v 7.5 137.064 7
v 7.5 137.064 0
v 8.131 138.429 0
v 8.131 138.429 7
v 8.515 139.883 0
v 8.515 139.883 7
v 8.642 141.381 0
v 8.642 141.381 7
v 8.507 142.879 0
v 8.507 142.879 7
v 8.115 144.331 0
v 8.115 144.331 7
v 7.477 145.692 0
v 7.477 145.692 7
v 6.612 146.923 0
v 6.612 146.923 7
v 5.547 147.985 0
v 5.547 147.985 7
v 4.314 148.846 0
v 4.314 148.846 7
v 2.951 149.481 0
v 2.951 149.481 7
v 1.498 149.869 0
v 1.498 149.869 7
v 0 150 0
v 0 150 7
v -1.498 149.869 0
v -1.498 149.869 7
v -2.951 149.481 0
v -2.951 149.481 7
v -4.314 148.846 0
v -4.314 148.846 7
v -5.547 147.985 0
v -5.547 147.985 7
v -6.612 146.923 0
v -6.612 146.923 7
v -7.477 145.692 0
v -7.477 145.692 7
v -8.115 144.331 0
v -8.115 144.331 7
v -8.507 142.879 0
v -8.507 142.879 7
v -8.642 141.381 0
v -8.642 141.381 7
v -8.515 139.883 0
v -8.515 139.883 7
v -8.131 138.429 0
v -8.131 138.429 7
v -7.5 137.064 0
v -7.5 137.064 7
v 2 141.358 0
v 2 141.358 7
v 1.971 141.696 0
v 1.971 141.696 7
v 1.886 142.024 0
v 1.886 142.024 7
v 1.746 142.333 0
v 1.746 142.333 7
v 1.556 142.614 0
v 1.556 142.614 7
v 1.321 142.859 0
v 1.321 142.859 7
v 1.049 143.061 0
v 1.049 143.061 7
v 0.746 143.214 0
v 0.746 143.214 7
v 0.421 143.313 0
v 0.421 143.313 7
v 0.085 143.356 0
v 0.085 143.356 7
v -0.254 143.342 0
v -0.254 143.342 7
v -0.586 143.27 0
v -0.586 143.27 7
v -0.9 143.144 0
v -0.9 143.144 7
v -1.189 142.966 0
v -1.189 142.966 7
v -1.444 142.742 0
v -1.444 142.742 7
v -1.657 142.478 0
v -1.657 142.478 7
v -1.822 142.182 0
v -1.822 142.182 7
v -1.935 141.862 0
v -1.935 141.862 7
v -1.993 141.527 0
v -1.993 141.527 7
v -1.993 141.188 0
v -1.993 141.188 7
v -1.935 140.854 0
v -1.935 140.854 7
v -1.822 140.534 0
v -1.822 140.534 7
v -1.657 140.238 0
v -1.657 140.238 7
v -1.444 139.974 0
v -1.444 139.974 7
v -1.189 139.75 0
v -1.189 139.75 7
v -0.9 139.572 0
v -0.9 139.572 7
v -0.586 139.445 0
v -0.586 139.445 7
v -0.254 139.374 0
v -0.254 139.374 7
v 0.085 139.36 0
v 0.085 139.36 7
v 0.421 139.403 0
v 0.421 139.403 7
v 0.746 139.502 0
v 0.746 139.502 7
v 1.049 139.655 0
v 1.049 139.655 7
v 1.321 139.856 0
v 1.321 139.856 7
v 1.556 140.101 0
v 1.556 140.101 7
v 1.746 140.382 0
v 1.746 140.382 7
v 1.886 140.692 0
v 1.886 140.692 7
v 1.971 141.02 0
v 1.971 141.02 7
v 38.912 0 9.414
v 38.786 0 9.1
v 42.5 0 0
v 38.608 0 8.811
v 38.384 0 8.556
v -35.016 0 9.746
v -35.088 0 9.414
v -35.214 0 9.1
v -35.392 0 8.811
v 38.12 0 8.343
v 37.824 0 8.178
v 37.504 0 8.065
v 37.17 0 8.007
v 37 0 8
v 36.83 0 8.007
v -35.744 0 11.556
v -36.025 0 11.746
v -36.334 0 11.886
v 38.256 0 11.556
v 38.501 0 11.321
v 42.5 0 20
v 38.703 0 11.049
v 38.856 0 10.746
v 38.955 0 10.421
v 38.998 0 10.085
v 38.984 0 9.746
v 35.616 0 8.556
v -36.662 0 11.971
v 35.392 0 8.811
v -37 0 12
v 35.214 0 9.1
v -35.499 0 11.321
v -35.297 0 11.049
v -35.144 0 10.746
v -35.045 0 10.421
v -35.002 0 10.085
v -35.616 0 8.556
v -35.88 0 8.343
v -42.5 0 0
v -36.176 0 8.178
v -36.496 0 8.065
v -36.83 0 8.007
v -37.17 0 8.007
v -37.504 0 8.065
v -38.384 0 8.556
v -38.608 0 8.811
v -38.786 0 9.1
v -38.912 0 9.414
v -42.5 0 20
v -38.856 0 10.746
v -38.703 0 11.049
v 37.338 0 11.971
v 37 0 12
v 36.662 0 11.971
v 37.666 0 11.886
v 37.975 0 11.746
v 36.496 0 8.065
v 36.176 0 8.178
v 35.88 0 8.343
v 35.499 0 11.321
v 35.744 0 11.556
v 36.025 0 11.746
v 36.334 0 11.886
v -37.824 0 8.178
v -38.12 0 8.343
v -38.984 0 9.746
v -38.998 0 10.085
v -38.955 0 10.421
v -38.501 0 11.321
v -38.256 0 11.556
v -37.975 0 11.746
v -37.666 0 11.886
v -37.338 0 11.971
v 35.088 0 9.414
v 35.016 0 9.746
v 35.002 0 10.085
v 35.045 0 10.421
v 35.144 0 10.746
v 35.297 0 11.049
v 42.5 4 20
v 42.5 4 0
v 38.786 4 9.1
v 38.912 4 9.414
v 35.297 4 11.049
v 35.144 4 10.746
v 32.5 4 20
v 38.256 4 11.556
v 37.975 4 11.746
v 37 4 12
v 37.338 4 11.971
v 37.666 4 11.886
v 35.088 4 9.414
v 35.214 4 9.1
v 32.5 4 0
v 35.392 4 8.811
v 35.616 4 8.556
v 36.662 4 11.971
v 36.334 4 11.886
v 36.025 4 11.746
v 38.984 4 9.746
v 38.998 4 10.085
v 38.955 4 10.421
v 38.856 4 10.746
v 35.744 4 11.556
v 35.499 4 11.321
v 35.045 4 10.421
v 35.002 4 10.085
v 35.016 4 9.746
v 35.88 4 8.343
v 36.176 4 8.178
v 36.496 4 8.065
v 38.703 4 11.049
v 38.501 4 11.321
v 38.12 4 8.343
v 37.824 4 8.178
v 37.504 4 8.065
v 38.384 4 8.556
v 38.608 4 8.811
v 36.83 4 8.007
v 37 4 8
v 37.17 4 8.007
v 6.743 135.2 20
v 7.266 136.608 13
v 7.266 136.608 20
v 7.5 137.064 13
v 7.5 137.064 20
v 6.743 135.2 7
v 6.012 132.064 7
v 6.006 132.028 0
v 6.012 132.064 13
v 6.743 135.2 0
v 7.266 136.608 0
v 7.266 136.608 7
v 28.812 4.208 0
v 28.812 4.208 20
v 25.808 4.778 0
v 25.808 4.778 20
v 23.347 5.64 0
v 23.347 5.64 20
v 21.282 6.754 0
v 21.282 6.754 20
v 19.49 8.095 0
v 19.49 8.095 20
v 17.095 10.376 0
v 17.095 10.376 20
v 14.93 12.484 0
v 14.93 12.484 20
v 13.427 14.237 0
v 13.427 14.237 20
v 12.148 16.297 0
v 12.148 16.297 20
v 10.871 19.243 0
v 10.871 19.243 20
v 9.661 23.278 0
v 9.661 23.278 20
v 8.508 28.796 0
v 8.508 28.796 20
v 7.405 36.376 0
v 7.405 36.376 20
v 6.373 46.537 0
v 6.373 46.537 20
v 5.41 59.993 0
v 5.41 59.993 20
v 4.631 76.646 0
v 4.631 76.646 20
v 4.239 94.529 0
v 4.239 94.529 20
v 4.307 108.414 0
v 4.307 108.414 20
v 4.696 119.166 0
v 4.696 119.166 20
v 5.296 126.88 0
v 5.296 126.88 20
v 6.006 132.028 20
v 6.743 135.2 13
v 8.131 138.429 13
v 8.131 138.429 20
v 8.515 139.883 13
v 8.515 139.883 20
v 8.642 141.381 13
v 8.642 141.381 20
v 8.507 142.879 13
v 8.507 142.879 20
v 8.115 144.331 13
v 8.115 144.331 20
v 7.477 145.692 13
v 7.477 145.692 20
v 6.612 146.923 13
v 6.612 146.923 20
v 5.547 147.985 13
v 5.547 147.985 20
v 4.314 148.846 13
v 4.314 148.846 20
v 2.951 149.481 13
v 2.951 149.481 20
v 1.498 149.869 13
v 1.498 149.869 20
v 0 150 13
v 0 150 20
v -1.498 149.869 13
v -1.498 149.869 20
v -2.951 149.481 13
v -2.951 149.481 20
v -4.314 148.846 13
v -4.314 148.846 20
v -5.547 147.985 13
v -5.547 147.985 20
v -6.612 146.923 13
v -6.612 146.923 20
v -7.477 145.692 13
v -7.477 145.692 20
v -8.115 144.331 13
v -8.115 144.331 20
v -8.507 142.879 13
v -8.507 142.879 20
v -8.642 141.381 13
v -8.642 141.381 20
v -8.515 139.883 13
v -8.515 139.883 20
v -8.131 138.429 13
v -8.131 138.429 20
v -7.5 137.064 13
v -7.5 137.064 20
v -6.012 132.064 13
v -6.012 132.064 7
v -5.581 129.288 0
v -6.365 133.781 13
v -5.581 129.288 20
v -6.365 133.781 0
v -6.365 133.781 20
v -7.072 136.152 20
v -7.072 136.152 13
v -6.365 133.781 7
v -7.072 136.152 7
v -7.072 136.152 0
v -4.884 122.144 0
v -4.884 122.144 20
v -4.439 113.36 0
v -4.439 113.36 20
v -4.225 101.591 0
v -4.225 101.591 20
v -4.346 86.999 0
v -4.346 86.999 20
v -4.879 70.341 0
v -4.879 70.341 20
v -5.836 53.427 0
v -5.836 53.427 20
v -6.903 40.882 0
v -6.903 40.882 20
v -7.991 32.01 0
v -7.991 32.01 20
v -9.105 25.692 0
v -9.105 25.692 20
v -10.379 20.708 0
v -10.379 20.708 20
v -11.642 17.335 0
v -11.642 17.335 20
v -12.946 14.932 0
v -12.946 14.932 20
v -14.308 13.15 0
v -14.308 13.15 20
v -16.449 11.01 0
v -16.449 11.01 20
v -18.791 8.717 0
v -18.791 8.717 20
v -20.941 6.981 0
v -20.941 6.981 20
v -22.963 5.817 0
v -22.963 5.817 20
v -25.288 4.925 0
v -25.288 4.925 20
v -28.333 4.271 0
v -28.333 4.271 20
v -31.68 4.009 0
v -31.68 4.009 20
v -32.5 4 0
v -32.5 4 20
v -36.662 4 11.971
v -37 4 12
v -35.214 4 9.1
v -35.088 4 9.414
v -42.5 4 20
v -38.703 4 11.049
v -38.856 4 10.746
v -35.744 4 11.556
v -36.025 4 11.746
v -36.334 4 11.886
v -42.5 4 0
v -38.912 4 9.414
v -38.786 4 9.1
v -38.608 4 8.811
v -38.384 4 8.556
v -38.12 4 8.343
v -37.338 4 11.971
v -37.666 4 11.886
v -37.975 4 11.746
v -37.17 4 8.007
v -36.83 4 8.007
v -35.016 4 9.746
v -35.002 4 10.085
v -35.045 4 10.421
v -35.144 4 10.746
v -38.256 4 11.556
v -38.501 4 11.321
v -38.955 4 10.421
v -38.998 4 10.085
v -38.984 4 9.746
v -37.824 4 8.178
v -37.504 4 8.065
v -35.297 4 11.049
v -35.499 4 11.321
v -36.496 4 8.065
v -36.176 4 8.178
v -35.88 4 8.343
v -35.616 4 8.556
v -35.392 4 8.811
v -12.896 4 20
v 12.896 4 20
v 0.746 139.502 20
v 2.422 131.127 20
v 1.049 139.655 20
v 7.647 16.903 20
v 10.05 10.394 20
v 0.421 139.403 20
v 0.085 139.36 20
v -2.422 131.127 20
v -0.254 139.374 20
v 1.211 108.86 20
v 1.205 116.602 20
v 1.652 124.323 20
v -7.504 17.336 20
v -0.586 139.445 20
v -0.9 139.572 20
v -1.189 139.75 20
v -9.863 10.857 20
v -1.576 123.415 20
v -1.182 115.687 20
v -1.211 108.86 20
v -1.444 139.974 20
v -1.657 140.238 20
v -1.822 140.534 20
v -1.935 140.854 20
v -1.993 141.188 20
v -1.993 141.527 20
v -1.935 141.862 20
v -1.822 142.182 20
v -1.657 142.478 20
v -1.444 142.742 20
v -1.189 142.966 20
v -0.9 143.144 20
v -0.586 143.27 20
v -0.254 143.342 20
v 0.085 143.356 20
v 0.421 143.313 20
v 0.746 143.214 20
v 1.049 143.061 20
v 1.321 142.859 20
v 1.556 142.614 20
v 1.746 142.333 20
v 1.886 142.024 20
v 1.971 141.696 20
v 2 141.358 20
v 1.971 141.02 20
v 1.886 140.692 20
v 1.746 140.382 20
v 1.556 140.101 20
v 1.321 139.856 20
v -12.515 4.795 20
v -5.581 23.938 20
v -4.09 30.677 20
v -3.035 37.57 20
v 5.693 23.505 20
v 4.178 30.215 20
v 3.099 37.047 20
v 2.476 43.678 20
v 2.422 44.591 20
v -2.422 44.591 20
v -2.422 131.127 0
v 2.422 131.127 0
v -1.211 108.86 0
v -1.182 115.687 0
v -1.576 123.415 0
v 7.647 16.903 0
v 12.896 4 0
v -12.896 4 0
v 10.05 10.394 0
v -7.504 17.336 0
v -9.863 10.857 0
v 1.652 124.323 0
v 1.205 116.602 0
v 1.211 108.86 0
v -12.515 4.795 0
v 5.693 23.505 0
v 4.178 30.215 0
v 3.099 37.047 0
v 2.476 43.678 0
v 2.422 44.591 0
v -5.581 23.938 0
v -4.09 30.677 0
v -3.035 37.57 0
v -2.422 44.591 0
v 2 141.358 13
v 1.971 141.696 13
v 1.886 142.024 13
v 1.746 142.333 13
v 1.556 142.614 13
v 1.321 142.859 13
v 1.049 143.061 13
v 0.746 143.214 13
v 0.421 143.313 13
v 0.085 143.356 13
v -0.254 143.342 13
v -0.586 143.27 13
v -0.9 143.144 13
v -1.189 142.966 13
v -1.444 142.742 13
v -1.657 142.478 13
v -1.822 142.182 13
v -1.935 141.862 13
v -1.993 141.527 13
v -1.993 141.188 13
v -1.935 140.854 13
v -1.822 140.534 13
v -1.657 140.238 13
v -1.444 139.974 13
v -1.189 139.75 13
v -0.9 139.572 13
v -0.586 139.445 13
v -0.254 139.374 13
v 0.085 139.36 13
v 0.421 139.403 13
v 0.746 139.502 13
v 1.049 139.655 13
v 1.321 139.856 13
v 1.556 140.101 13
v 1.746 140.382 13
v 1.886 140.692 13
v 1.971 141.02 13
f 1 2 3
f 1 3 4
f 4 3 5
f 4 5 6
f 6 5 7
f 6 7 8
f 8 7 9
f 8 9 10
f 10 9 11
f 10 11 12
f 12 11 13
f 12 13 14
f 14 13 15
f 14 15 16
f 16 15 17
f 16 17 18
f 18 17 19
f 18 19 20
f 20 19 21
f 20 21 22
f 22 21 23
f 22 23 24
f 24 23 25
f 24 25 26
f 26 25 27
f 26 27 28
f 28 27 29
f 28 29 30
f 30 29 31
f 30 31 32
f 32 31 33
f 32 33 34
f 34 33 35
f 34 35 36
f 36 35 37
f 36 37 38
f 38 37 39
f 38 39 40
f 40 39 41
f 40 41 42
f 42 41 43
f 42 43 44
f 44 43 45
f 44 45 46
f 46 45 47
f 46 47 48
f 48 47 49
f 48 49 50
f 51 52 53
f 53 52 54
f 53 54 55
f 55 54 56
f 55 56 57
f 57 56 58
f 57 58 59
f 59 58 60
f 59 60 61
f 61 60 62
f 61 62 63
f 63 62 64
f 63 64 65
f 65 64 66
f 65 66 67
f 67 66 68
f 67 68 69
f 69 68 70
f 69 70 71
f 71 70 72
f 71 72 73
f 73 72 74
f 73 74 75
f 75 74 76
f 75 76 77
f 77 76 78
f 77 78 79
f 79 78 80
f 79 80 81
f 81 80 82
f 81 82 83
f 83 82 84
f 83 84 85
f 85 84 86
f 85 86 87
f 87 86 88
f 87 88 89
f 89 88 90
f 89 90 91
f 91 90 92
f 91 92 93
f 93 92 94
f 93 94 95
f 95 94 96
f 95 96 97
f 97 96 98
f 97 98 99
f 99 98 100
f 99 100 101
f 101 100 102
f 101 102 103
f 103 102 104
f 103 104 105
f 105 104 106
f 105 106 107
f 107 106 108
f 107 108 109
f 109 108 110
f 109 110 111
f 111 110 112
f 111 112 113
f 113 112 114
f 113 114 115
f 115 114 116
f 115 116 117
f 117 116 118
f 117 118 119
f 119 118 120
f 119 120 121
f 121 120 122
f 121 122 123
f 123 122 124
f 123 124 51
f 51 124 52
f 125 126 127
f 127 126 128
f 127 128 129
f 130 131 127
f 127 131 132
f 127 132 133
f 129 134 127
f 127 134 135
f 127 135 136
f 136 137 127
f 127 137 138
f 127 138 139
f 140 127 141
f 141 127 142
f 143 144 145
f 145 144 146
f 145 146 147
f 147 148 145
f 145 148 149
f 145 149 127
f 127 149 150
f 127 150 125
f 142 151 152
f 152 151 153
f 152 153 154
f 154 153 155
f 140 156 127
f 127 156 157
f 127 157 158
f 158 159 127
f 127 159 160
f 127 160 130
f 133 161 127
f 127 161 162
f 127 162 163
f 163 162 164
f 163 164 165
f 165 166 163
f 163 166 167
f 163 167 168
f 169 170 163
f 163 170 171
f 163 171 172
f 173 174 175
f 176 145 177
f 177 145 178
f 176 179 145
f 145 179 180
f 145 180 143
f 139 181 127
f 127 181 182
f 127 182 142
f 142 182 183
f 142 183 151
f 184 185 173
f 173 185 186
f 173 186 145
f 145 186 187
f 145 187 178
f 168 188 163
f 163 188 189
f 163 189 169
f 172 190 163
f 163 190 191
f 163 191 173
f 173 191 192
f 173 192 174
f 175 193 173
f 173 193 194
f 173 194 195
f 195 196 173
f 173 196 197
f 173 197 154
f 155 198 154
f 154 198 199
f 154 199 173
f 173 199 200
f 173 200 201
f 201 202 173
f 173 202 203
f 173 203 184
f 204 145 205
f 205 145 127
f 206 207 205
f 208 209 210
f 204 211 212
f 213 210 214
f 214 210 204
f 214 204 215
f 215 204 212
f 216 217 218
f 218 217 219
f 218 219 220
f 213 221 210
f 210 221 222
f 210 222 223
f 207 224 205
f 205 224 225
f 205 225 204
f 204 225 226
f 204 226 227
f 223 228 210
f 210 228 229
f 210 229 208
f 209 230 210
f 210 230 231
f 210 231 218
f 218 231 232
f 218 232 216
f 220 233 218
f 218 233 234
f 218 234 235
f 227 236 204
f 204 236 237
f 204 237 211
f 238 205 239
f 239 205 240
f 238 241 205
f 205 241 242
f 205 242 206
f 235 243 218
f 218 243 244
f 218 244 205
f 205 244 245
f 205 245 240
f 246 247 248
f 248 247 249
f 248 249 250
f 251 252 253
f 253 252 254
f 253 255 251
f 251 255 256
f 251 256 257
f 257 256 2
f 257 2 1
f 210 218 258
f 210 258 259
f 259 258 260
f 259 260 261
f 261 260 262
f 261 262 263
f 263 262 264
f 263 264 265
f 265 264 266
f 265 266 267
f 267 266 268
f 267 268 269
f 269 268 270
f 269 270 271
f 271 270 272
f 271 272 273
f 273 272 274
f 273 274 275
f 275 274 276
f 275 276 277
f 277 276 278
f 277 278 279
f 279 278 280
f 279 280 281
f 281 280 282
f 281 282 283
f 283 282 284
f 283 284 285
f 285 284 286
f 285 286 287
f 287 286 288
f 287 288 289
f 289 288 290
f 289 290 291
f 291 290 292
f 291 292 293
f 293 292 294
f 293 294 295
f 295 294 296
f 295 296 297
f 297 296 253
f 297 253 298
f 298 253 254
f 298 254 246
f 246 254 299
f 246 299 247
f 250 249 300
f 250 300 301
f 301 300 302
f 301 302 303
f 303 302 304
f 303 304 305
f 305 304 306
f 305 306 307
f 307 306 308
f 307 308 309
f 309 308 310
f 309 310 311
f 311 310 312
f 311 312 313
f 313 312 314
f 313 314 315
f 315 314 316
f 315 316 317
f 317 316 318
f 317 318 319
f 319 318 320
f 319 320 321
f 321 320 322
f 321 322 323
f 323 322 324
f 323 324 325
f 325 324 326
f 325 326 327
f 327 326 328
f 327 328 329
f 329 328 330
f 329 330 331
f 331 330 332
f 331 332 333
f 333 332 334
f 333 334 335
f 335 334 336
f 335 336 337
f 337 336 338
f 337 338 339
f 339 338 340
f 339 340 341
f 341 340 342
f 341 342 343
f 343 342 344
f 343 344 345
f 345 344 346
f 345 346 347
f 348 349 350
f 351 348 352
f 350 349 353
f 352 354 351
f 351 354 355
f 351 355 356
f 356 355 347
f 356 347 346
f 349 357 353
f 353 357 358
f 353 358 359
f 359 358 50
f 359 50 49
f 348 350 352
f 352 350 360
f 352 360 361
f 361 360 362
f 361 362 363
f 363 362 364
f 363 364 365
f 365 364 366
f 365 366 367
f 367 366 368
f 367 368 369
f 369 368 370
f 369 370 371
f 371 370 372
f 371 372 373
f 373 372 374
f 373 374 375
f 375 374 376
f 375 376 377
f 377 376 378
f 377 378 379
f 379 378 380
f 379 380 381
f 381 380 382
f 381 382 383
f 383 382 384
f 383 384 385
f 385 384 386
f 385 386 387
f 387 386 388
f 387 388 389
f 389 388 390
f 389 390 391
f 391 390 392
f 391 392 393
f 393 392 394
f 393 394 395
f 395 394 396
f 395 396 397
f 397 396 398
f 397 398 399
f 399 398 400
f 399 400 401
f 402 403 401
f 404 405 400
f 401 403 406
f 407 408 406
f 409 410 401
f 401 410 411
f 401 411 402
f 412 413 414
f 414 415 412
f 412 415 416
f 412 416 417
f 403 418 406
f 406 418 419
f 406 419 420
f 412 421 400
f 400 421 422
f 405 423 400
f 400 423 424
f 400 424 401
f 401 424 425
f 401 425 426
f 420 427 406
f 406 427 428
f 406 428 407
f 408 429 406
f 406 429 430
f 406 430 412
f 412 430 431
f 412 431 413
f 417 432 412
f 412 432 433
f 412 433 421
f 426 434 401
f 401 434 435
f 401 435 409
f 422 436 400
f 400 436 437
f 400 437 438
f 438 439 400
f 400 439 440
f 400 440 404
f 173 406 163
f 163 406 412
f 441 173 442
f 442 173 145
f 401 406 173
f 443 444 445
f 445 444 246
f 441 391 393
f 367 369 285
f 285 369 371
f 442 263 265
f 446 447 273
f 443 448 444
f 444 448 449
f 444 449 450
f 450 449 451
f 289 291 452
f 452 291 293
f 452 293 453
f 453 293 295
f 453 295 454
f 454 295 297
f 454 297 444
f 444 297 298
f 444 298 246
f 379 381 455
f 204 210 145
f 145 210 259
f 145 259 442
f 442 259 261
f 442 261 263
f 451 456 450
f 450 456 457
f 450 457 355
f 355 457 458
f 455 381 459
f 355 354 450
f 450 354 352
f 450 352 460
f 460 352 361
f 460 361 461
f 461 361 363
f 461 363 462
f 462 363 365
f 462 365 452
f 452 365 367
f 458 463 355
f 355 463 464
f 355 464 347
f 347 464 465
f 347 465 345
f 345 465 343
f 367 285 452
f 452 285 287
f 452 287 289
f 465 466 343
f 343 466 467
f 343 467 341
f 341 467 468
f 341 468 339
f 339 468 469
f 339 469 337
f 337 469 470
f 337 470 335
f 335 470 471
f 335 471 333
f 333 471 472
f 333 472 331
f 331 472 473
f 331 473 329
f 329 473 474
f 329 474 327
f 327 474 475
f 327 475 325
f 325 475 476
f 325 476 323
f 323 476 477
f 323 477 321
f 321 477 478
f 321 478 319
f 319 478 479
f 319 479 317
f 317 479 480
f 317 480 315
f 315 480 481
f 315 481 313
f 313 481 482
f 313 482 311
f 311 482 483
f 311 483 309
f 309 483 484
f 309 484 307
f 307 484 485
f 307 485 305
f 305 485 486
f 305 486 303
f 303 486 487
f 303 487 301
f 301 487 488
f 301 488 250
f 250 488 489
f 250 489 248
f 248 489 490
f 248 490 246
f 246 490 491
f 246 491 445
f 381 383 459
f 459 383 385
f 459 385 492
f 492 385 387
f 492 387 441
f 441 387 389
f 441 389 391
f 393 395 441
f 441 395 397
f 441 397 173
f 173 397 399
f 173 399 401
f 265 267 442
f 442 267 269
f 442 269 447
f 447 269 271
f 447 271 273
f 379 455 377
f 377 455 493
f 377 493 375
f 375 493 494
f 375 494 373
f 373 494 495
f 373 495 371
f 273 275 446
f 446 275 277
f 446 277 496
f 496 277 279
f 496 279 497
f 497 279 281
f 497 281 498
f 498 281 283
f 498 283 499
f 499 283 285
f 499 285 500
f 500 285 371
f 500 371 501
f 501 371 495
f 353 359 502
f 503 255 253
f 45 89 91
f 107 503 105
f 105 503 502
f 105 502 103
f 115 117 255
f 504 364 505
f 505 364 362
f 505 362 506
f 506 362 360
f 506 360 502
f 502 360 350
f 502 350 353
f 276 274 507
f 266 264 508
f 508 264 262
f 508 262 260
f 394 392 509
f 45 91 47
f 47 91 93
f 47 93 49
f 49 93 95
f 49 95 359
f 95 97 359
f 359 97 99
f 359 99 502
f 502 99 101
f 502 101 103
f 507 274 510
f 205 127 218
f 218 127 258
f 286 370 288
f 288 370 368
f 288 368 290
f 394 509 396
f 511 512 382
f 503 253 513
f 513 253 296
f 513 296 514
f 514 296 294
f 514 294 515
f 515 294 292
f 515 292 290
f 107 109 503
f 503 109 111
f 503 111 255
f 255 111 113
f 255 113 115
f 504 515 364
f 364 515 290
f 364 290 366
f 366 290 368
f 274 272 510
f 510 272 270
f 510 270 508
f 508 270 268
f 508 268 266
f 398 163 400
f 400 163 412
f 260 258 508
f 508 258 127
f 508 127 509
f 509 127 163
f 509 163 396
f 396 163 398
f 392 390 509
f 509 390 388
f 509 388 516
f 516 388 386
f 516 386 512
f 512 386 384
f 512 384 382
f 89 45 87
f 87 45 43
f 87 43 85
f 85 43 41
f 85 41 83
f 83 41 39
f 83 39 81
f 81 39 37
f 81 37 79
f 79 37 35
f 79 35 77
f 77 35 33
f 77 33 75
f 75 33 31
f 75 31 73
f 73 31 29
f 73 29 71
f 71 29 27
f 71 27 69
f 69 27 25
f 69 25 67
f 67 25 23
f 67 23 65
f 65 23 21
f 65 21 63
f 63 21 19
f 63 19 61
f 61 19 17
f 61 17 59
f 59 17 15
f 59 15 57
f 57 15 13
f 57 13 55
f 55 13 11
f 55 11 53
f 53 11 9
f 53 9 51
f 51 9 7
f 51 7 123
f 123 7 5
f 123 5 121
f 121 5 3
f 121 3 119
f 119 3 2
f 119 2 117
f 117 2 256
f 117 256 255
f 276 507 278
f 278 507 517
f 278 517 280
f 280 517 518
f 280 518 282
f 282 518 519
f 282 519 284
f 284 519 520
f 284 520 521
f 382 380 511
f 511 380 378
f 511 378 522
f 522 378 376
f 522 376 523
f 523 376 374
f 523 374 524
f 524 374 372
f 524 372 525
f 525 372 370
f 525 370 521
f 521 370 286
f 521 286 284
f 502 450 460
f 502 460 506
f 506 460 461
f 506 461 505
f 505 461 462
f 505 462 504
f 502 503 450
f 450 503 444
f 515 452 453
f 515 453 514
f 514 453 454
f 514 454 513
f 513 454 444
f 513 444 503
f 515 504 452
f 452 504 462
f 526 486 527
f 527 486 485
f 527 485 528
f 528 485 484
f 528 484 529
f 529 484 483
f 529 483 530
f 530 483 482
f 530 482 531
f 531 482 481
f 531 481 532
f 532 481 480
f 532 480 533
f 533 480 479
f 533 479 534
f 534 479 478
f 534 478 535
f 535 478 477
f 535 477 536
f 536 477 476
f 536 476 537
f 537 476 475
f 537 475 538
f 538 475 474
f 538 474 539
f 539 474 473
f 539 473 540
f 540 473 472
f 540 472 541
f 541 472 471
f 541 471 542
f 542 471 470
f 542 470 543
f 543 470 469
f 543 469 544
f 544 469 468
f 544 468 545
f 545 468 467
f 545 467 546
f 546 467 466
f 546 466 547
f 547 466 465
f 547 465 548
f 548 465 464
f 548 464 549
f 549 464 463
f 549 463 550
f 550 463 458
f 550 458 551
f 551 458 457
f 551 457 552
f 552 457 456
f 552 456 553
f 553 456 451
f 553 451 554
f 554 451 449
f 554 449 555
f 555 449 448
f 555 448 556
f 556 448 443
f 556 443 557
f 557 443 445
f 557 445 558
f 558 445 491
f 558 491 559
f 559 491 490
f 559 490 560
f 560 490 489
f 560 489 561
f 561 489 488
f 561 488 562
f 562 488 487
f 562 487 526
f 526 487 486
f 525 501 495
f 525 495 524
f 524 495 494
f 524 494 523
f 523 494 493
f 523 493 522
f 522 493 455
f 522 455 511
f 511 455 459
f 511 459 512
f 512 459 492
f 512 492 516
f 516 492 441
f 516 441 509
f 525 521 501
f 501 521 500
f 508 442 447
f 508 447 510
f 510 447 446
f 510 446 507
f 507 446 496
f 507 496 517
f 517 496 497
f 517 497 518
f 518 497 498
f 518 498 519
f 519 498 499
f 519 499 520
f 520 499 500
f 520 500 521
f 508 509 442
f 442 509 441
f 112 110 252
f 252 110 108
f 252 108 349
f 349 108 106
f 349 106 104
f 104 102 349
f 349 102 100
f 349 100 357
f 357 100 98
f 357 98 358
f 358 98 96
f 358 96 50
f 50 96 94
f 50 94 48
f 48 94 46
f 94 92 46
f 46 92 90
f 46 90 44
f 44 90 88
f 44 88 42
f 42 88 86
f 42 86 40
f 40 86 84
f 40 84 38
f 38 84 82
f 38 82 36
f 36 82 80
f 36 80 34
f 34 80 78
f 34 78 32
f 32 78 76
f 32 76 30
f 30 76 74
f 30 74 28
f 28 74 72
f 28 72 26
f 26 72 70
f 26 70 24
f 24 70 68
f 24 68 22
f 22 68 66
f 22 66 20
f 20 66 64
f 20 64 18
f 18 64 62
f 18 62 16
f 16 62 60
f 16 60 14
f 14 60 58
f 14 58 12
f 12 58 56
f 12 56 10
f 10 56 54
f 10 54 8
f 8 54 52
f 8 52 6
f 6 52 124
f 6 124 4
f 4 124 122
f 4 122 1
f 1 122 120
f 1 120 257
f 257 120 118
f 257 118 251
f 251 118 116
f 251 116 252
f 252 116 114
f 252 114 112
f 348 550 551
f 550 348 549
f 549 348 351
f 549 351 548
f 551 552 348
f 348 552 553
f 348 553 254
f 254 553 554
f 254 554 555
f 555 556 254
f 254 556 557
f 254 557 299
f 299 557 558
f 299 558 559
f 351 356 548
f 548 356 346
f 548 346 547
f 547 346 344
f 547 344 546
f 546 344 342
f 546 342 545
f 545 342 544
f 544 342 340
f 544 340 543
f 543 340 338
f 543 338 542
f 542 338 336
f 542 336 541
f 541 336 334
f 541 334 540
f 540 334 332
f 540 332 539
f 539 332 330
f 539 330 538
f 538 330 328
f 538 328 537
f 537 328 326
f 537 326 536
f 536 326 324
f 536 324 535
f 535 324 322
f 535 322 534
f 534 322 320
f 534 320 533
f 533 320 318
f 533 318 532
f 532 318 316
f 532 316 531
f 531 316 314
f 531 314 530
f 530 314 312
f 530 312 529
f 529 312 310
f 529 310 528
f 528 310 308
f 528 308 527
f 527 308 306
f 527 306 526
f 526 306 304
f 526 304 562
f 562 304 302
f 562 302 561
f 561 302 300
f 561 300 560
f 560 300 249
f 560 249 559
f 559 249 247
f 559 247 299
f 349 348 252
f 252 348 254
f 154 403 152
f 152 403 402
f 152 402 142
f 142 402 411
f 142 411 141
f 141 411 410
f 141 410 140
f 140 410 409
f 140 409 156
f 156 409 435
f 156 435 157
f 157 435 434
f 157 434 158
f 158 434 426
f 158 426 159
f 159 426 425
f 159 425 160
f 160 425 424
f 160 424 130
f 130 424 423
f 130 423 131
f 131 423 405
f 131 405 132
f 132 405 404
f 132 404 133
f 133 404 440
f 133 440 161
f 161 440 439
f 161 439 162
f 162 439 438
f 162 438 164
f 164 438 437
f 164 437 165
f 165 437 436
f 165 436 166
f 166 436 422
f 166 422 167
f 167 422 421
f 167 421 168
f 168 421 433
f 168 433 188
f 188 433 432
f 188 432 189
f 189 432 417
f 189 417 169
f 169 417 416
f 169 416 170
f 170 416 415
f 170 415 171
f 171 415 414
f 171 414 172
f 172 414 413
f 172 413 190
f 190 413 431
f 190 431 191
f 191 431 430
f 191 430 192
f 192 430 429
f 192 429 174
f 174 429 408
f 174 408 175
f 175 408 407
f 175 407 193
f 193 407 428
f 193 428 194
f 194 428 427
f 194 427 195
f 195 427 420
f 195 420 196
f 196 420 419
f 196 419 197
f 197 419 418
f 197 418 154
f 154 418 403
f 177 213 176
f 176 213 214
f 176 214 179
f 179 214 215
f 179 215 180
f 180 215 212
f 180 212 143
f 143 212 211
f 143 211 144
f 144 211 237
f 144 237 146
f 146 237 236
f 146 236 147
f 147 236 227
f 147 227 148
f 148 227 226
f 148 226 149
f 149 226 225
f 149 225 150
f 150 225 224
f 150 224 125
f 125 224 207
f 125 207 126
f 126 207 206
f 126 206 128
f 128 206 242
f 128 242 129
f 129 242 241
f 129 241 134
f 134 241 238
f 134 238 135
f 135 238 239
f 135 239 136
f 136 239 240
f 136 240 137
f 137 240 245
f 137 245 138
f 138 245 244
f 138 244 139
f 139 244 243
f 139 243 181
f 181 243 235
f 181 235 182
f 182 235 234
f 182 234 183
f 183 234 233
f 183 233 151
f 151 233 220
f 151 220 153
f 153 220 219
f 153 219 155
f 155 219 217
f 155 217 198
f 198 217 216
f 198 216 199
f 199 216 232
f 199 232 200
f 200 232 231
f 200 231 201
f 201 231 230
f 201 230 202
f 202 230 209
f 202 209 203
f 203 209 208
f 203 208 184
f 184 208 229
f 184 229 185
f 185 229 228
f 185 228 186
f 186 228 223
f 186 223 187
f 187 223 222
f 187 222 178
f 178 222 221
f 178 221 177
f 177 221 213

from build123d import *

# Parameters (mm, degrees)
SALIENTE_EXTRUIR2_DEPTH = 20
CROQUIS3_R              = 2
CORTAR_EXTRUIR1_DEPTH   = 158.182219231
CROQUIS7_W              = 30
CROQUIS7_H              = 6
CORTAR_EXTRUIR4_DEPTH   = 15
CROQUIS8_W              = 17.284402488
CROQUIS8_H              = 6
CORTAR_EXTRUIR5_DEPTH   = 5
CROQUIS6_R              = 2
CORTAR_EXTRUIR3_DEPTH   = 154.369651632


with BuildPart() as part:
    # Croquis1 → Saliente-Extruir2 (new body)
    with BuildSketch(Plane.XY):
        with BuildLine():
            Line((-42.5, 0), (-42.5, 4))
            Line((-42.5, 4), (-32.5, 4))
            add(Edge.make_bspline(
                [(-32.5, 4), (-22.670639358, 4), (-16.226990124, 12.301218675), (-5.122390032, 19.11443447), (-2.364282608, 128.09353499), (-7.5, 137.063891171)],
                knots=[0, 0, 0, 0, 0.22919519, 0.488952723, 0.855764583, 0.855764583, 0.855764583, 0.855764583], degree=3))
            ThreePointArc((-7.5, 137.063891171), (0, 150), (7.5, 137.063891171))
            add(Edge.make_bspline(
                [(32.5, 4), (22.670639358, 4), (16.226990124, 12.301218675), (5.122390032, 19.11443447), (2.364282608, 128.09353499), (7.5, 137.063891171)],
                knots=[0, 0, 0, 0, 0.22919519, 0.488952723, 0.855764583, 0.855764583, 0.855764583, 0.855764583], degree=3))
            Line((32.5, 4), (42.5, 4))
            Line((42.5, 4), (42.5, 0))
            Line((42.5, 0), (-42.5, 0))
        make_face()
    extrude(amount=SALIENTE_EXTRUIR2_DEPTH)

    # Croquis3 → Cortar-Extruir1 (cut, through all)
    with BuildSketch(Plane.XY.offset(20)):
        with Locations((0, 141.357798756)):
            Circle(CROQUIS3_R)
        with BuildLine():
            Line((-2.421642236, 44.591389295), (2.421642236, 44.591389295))
            add(Edge.make_bspline(
                [(12.896150466, 4), (3.6034191, 23.188396535), (2.421642236, 44.591389295)],
                knots=[0, 0, 0, 1, 1, 1], degree=2))
            Line((12.896150466, 4), (-12.896150466, 4))
            add(Edge.make_bspline(
                [(-12.896150466, 4), (-3.6034191, 23.188396535), (-2.421642236, 44.591389295)],
                knots=[0, 0, 0, 1, 1, 1], degree=2))
        make_face()
        with BuildLine():
            Line((-2.421642236, 131.126853852), (2.421642236, 131.126853852))
            add(Edge.make_bspline(
                [(2.421642236, 131.126853852), (0.876872729, 120.033282634), (1.210821118, 108.86049399)],
                knots=[0, 0, 0, 1, 1, 1], degree=2))
            Line((1.210821118, 108.86049399), (-1.210821118, 108.86049399))
            add(Edge.make_bspline(
                [(-2.421642236, 131.126853852), (-0.876872729, 120.033282634), (-1.210821118, 108.86049399)],
                knots=[0, 0, 0, 1, 1, 1], degree=2))
        make_face()
    extrude(amount=-CORTAR_EXTRUIR1_DEPTH, mode=Mode.SUBTRACT)

    # Croquis7 → Cortar-Extruir4 (cut)
    with BuildSketch(Plane(origin=(0, 137.063891171, 0), x_dir=(-1, 0, 0), z_dir=(0, -1, 0))):
        with Locations((0, -10)):
            Rectangle(CROQUIS7_W, CROQUIS7_H)
    extrude(amount=-CORTAR_EXTRUIR4_DEPTH, mode=Mode.SUBTRACT)

    # Croquis8 → Cortar-Extruir5 (cut)
    with BuildSketch(Plane(origin=(0, 137.063891171, 0), x_dir=(1, 0, 0), z_dir=(0, 1, 0))):
        with Locations((0, -10)):
            Rectangle(CROQUIS8_W, CROQUIS8_H)
    extrude(amount=-CORTAR_EXTRUIR5_DEPTH, mode=Mode.SUBTRACT)

    # Croquis6 → Cortar-Extruir3 (cut, through all)
    with BuildSketch(Plane(origin=(0, 4, 0), x_dir=(1, 0, 0), z_dir=(0, 1, 0))):
        with Locations(Location((-37, -10, 0), (0, 0, 270))):
            Circle(CROQUIS6_R)
        with Locations(Location((37, -10, 0), (0, 0, 90))):
            Circle(CROQUIS6_R)
    extrude(amount=-CORTAR_EXTRUIR3_DEPTH, mode=Mode.SUBTRACT)


solid = part.part
